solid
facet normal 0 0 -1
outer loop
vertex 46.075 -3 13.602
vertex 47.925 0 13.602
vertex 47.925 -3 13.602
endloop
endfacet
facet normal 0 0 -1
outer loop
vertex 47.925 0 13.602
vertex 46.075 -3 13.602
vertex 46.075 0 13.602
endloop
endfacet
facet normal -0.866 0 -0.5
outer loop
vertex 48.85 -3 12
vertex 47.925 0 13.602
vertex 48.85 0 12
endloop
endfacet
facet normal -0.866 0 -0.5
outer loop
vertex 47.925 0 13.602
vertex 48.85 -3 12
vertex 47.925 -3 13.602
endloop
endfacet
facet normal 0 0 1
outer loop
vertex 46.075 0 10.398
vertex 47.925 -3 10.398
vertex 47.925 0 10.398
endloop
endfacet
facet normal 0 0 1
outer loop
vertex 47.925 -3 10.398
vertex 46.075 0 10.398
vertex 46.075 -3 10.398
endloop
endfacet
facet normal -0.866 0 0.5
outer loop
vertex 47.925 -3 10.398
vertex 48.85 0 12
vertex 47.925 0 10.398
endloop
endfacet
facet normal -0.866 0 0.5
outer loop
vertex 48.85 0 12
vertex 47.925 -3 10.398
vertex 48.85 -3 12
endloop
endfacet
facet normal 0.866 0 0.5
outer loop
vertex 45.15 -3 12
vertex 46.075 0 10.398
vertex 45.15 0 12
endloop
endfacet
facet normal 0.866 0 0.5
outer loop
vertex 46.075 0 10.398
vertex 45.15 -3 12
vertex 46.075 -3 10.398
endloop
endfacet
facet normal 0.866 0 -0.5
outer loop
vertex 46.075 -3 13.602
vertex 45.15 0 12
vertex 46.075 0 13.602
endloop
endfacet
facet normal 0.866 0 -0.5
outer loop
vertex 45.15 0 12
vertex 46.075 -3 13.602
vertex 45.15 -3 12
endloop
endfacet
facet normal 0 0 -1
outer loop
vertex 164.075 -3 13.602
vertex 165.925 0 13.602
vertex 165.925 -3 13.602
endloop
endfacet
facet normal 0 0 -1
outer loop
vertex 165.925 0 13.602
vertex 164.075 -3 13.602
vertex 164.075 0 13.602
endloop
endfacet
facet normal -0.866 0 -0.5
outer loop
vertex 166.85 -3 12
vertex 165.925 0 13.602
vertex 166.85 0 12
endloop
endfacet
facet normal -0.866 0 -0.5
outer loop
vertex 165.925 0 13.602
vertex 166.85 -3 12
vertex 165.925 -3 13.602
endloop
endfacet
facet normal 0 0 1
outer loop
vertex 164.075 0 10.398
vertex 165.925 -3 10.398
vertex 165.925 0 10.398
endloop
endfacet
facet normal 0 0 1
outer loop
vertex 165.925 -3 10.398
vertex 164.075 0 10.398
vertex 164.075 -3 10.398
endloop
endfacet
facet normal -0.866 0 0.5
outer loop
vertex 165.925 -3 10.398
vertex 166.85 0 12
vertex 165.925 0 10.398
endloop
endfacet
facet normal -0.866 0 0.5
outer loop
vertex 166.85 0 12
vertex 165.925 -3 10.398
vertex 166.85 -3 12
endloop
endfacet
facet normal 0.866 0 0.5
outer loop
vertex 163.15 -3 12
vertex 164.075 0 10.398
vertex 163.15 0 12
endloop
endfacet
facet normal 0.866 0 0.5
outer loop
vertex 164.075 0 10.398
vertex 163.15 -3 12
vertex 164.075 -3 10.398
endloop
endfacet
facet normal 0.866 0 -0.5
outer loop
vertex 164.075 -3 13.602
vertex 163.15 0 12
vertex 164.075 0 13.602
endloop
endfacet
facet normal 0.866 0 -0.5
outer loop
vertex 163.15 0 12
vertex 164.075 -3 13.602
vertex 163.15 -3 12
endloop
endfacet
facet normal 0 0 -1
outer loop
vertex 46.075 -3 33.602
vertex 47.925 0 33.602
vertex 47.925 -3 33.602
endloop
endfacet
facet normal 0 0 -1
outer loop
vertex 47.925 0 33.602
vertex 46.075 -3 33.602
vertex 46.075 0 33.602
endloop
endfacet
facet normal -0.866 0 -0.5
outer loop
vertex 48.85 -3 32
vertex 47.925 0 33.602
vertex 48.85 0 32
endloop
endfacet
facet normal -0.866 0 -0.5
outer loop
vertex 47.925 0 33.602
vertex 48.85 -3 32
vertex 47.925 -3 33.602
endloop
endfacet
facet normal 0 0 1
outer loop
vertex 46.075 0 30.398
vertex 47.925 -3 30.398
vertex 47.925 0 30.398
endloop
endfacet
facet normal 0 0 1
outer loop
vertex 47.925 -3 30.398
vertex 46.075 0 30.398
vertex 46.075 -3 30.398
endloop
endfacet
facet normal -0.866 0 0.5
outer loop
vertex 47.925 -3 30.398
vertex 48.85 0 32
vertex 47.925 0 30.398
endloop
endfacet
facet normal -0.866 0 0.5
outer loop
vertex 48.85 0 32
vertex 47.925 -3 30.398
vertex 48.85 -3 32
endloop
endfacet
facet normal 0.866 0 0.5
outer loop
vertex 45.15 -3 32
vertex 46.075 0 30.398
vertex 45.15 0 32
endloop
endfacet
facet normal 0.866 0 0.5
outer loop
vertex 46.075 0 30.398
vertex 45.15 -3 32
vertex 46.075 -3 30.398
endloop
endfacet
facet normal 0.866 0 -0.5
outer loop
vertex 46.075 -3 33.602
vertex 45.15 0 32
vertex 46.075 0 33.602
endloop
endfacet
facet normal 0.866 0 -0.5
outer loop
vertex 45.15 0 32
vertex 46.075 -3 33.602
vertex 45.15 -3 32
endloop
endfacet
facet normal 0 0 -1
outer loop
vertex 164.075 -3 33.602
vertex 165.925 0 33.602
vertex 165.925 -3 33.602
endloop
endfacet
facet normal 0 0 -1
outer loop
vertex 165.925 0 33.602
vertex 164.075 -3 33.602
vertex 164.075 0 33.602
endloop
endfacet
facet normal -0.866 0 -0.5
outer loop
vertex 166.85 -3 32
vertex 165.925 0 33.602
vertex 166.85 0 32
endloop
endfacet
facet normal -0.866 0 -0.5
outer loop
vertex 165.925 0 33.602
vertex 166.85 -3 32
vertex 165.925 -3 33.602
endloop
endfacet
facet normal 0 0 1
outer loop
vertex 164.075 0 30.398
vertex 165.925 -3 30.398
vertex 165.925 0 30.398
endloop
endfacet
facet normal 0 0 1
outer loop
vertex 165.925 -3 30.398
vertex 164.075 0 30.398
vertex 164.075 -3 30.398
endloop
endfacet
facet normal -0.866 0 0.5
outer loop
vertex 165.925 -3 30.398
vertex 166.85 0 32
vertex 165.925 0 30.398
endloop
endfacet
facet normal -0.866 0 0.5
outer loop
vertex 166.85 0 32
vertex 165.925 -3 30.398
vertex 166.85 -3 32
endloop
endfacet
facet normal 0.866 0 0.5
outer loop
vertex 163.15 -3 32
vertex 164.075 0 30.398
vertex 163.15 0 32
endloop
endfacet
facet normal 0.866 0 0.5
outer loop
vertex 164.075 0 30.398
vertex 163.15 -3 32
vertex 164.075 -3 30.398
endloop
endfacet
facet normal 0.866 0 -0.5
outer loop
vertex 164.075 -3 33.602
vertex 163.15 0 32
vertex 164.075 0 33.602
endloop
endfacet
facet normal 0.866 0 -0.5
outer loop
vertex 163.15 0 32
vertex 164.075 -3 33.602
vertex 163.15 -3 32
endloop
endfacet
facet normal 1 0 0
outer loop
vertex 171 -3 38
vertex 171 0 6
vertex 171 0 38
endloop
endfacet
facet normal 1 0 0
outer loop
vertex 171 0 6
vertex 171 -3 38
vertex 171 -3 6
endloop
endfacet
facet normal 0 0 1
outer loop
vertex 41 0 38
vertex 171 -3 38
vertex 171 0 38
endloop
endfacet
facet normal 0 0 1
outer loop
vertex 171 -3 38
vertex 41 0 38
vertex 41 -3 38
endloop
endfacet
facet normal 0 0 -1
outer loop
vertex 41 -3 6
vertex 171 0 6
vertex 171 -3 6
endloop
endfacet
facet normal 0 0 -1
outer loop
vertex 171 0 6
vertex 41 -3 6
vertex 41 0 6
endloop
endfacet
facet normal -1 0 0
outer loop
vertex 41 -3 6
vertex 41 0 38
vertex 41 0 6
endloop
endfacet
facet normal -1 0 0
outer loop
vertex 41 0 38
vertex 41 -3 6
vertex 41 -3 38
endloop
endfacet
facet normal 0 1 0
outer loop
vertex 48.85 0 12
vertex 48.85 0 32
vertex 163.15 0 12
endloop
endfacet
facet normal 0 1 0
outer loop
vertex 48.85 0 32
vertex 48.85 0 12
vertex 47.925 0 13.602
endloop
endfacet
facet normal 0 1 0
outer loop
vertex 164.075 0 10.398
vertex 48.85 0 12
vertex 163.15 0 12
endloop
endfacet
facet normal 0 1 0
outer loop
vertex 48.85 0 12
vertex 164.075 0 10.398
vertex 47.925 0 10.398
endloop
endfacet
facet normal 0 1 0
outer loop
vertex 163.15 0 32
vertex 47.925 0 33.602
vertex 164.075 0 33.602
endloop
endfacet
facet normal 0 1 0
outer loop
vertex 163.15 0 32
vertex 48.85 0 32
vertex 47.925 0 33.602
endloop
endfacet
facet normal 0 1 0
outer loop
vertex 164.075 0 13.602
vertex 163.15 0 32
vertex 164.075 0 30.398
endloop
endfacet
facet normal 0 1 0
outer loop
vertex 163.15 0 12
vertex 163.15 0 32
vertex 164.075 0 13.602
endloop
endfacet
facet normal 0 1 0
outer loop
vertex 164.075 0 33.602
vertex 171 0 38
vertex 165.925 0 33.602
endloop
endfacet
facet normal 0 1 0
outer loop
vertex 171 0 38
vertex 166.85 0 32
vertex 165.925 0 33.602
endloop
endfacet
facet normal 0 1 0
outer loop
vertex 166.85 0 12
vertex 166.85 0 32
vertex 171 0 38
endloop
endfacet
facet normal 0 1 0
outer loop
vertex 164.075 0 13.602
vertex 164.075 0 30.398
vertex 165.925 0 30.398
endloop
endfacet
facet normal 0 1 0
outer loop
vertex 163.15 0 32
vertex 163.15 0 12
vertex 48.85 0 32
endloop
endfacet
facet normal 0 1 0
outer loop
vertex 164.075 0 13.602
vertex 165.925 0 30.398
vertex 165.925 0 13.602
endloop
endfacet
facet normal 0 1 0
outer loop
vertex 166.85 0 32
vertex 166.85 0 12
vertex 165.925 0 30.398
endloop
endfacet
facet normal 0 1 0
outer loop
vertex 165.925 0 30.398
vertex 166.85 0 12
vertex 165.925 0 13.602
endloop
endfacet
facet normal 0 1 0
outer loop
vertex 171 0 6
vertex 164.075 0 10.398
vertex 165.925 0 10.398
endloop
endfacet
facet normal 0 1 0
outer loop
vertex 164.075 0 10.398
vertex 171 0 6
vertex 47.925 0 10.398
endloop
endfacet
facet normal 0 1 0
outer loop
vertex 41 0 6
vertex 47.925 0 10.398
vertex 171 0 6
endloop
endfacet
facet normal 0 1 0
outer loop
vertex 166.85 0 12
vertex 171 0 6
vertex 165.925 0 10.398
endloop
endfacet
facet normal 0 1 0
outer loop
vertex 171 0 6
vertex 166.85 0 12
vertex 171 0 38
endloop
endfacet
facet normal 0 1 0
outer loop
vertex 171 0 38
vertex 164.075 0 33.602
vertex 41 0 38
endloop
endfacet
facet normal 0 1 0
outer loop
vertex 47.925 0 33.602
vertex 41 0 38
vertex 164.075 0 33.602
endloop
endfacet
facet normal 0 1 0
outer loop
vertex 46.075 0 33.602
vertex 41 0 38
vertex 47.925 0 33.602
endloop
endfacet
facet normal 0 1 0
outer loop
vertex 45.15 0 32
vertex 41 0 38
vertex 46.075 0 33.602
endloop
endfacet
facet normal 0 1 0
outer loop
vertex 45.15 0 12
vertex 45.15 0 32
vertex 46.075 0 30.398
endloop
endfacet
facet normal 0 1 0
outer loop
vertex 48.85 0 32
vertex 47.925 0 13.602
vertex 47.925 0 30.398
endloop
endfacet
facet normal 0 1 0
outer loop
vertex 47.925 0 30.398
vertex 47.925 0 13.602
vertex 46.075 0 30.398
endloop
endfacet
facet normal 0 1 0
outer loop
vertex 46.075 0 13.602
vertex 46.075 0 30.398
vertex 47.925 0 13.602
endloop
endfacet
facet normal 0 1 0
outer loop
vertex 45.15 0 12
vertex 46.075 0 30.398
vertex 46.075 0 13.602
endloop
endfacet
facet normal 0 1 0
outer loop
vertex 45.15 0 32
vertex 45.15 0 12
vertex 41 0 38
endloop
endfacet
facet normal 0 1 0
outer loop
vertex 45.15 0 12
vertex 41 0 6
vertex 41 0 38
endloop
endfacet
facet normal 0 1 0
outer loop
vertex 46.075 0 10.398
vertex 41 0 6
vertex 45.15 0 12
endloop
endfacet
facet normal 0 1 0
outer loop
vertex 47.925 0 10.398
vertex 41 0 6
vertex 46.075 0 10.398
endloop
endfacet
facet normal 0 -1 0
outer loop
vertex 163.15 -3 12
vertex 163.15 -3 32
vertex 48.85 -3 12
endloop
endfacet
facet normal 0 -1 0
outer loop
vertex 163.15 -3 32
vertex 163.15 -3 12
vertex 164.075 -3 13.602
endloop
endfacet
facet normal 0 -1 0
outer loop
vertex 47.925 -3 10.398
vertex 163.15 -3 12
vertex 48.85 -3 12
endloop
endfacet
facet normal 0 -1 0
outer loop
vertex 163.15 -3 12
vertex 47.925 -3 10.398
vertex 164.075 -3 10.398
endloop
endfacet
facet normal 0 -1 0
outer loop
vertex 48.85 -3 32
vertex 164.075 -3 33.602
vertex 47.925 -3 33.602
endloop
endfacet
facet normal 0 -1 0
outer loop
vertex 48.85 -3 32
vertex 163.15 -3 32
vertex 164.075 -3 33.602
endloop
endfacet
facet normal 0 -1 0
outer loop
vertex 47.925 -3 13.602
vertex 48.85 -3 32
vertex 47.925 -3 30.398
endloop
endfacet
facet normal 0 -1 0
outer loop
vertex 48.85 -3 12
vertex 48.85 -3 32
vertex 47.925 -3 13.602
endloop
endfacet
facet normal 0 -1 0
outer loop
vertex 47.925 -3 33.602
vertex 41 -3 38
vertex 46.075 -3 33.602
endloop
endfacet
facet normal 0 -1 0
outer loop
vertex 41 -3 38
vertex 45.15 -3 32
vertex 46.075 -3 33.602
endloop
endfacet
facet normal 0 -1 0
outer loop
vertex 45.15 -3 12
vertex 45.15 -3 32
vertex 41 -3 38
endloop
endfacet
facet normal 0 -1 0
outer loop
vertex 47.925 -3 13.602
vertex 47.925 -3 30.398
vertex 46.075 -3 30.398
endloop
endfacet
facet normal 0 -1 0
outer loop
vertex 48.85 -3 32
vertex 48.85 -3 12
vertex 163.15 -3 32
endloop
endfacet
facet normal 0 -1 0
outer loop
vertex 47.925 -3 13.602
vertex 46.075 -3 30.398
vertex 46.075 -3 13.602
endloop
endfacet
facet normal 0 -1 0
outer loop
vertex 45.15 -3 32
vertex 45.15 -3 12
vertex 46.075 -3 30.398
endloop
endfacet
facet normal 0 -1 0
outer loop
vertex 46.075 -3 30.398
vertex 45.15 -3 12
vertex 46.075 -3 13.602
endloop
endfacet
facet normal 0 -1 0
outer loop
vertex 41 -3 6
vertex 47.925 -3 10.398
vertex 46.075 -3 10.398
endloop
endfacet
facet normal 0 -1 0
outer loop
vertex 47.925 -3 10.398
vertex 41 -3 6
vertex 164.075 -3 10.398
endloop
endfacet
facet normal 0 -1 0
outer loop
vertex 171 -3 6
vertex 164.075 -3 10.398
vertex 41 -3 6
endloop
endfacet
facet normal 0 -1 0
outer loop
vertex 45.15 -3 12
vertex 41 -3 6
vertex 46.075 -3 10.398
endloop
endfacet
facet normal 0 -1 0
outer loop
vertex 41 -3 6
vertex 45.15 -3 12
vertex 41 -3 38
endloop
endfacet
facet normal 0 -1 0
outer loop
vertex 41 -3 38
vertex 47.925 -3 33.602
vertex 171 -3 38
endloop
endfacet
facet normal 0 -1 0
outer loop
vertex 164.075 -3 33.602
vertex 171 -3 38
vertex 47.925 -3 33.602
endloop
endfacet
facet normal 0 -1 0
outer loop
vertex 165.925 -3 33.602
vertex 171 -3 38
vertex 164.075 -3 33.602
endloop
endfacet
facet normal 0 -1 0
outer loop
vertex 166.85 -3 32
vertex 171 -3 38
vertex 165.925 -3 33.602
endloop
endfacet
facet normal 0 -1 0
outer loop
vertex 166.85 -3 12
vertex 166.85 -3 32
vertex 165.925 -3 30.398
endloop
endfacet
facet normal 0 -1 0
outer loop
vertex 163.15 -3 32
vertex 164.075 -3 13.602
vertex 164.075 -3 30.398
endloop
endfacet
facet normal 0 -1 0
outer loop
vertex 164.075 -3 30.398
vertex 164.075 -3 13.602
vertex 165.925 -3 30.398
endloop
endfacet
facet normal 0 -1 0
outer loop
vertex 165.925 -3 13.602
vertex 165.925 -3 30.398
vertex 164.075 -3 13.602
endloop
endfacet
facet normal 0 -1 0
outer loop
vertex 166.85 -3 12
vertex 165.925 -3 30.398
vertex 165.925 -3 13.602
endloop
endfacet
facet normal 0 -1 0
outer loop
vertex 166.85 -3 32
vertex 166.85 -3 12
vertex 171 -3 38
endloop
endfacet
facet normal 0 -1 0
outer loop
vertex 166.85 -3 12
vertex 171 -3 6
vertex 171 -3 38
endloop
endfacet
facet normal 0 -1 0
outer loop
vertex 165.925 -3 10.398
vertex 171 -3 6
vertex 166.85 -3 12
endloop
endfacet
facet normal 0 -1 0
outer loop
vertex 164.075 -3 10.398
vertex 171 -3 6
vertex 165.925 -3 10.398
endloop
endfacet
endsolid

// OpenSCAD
// =====================================================================
// parts/io_subplate.scad  ->  io_subplate()
//
// Swappable front-I/O insert that drops into the recessed faceplate window
// (parts faceplate_left + faceplate_right). Modeled IN the shared assembly
// frame so it mates with the faceplate with NO transform in main.scad.
//
// Contract placement (io_subplate):
//   local 120 x 70 x 3  (IO_SUB_W x IO_SUB_H x IO_SUB_T)
//   seated in the faceplate window IO_WIN_X0=35 => assembly X 35..155,
//   bottom at IO_WIN_Z0=20 => assembly Z 20..90, recessed in Y at the
//   faceplate face (faceplate at Y -FACE_T..0; subplate sits Y -IO_SUB_T..0).
//   4x M3 clearance mounts (IO_SUB_M3, axis +Y) into faceplate inserts.
//   Cutouts (LOCAL coords, // MEASURE in params): HDMI, USB-A x2,
//   louvered EXHAUST grille. IO_VARIANT=="rj45" adds a front RJ45 cutout.
//
// LOCAL cutout frame: each cutout [x,z] is referenced from the subplate's
//   lower-left corner (assembly X=IO_WIN_X0, Z=IO_WIN_Z0). This module maps
//   local -> assembly so params can be edited directly against calipers.
//
// Printability: prints FLAT, largest face (120 x 70) on the bed (lay the Y
//   axis vertical at slice time). 3mm thick. M3 bores are CLEARANCE holes
//   (no heat-set, so no upward-bridging concern). Cutouts are clean through
//   differences. Louver slats tilt for a no-support overhang. <=190 in its
//   two largest axes (120 x 70).  EPS overlaps keep it 2-manifold.
// =====================================================================

include <params.scad>
use <../lib/joinery.scad>

module io_subplate() {
    // assembly-frame anchor of the subplate's LOCAL (0,0) corner:
    ax = IO_WIN_X0;        // = 35   (subplate left edge in X)
    az = IO_WIN_Z0;        // = 20   (subplate bottom edge in Z)
    ay = -IO_SUB_T;        // outer face flush with faceplate face plane Y=0;
                           //   plate occupies Y -IO_SUB_T..0 (recessed in window)

    // --- helper: place a LOCAL [x,z] cutout into the assembly frame ---
    //   a rectangular through-window of size [sx (X), sz (Z)] centered on
    //   local [cx, cz], bored through the full Y thickness (+ eps each side).
    module rect_window(cx, cz, sx, sz) {
        translate([ax + cx, ay - EPS, az + cz])
            cube([sx, IO_SUB_T + 2*EPS, sz], center = false);
    }
    // centered variant (pos is the CENTER of the opening, like params define)
    module rect_window_c(pos, size) {
        translate([ax + pos[0] - size[0]/2,
                   ay - EPS,
                   az + pos[1] - size[1]/2])
            cube([size[0], IO_SUB_T + 2*EPS, size[1]], center = false);
    }
    module round_window_c(pos, dia) {
        translate([ax + pos[0], ay - EPS, az + pos[1]])
            rotate([-90, 0, 0])
                cylinder(h = IO_SUB_T + 2*EPS, d = dia);
    }

    difference() {
        // ---- solid plate (the swappable insert body) ----
        translate([ax, ay, az])
            cube([IO_SUB_W, IO_SUB_T, IO_SUB_H], center = false);

        // ---- 4x M3 clearance mount holes (axis +Y), LOCAL IO_SUB_M3 ----
        for (p = IO_SUB_M3)
            translate([ax + p[0], ay - EPS, az + p[1]])
                rotate([-90, 0, 0])
                    cylinder(h = IO_SUB_T + 2*EPS, d = M3_CLEAR);

        // Port cutouts only for the measured variants. The tolerance default
        // "blank" leaves a SOLID insert the user drills once the real port
        // positions are calipered, then reprints just this cheap part.
        if (IO_VARIANT != "blank") {
            // ---- HDMI-A port window ----
            rect_window_c(HDMI_POS, HDMI_SIZE);
            // ---- USB-A x2 (stacked: same size, two centers) ----
            rect_window_c(USBA_POS_1, USBA_SIZE);
            rect_window_c(USBA_POS_2, USBA_SIZE);
            // ---- louvered blower EXHAUST grille ----
            translate([ax + EXHAUST_POS[0] - EXHAUST_SIZE[0]/2,
                       ay,
                       az + EXHAUST_POS[1] - EXHAUST_SIZE[1]/2])
                louver_grille(EXHAUST_SIZE[0], EXHAUST_SIZE[1], IO_SUB_T,
                              n = 6, slat = 3, angle = 30, eps = EPS);
            // ---- front RJ45 (only in the "rj45" variant) ----
            if (IO_VARIANT == "rj45")
                rect_window_c(RJ45_POS, RJ45_SIZE);
        }
    }
}

// standalone render
io_subplate();
